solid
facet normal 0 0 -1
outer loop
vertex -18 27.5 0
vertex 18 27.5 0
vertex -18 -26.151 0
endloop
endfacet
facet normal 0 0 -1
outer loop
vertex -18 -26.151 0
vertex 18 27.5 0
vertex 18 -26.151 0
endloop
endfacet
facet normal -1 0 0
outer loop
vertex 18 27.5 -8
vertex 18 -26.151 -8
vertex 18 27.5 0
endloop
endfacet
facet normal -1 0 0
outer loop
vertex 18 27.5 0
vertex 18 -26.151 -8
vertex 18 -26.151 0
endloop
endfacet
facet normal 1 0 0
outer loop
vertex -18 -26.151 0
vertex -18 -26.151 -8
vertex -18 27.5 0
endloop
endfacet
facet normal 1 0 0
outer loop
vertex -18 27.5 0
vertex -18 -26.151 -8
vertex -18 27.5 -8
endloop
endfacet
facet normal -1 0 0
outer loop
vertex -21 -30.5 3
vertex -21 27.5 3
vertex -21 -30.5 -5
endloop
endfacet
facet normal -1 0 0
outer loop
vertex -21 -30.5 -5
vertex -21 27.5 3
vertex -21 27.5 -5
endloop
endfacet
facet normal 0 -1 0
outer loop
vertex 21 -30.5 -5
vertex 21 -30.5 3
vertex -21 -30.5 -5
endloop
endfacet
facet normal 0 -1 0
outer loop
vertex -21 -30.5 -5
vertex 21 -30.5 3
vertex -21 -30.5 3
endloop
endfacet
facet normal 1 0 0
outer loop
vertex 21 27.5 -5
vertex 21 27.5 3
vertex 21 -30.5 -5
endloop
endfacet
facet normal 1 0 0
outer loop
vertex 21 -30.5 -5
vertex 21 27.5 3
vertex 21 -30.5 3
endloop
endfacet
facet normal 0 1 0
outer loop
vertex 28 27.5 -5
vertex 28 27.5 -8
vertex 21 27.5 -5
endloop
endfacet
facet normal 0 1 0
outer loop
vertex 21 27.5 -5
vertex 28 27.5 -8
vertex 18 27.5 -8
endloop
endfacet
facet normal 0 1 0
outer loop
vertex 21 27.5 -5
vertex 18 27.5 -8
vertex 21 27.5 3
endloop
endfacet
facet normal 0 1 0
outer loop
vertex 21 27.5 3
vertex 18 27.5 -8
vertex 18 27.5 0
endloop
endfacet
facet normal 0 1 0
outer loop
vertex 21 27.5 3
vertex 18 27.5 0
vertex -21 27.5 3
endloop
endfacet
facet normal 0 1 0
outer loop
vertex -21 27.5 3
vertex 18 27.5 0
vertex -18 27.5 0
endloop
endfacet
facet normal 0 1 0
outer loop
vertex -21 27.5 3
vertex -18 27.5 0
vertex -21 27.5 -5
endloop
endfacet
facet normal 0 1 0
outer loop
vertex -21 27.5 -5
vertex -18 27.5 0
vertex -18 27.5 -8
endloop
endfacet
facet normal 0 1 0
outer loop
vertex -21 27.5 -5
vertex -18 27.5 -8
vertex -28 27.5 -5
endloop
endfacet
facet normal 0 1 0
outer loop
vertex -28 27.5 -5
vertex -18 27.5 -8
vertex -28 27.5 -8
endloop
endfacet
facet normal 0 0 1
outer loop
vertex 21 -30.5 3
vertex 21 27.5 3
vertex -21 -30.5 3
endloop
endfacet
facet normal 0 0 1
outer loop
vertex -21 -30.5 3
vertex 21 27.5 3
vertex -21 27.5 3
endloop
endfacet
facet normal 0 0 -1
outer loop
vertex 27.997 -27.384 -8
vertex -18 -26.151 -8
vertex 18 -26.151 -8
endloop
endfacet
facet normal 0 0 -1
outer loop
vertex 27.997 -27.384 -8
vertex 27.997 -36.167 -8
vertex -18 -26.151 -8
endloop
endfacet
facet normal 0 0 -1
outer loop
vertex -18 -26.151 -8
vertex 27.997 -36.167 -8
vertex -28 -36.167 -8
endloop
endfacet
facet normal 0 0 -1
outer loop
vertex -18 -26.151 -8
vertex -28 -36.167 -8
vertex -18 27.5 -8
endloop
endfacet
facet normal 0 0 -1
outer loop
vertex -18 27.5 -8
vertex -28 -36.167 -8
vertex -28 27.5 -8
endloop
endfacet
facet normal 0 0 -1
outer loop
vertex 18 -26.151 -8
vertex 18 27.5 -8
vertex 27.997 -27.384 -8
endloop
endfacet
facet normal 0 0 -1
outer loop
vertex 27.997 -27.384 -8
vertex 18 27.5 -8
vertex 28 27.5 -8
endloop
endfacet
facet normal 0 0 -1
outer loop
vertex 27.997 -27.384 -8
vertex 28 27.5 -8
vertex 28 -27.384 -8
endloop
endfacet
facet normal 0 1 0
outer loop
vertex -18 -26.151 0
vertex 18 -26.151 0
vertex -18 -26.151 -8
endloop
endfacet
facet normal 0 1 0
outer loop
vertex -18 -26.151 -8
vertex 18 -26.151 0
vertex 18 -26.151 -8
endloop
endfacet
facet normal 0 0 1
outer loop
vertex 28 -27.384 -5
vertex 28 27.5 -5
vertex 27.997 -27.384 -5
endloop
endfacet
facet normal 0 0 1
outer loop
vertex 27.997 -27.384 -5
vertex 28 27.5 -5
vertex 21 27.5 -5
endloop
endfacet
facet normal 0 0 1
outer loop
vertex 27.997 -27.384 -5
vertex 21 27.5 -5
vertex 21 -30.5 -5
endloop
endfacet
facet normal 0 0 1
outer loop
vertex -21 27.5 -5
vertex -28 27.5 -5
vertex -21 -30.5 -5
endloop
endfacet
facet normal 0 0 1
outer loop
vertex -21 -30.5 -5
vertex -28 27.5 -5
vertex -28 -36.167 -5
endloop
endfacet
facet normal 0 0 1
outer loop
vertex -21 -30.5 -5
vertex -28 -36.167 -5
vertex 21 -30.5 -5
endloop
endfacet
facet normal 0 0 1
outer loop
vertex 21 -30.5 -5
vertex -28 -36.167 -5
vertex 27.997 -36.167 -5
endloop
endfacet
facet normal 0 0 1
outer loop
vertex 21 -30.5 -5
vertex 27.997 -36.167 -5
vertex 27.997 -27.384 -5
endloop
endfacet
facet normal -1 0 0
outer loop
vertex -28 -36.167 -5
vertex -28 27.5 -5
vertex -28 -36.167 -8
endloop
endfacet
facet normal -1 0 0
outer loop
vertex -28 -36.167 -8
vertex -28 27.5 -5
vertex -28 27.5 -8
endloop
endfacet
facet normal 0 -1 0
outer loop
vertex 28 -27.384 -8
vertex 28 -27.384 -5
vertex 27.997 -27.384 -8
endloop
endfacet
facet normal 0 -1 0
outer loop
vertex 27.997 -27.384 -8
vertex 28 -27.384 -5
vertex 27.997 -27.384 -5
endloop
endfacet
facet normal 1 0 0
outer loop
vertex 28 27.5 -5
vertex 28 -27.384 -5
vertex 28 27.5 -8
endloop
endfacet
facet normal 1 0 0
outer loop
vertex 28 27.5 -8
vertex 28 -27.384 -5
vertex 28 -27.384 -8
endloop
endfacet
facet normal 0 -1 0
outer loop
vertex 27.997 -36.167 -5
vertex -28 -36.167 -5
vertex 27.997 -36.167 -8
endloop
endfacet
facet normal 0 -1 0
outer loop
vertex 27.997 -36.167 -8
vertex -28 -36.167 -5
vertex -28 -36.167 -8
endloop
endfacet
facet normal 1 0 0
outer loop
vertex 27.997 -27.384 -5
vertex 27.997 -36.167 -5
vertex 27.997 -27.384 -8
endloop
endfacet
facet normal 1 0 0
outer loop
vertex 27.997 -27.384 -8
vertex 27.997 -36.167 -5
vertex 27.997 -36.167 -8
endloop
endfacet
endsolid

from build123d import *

# Parameters (mm, degrees)
SKETCH1_W           = 42
SKETCH1_H           = 58
BOSS_EXTRUDE1_DEPTH = 3
SKETCH2_W           = 3
SKETCH2_H           = 58
BOSS_EXTRUDE2_DEPTH = 8
SKETCH3_W           = 3
SKETCH3_H           = 58
BOSS_EXTRUDE3_DEPTH = 8
SKETCH4_W           = 36.040635574
SKETCH4_H           = 4.348824295
BOSS_EXTRUDE4_DEPTH = 8
SKETCH5_W           = 10
SKETCH5_H           = 53.666567446
BOSS_EXTRUDE5_DEPTH = 3
SKETCH6_W           = 10
SKETCH6_H           = 54.883518579
BOSS_EXTRUDE6_DEPTH = 3
SKETCH7_W           = 55.997152208
SKETCH7_H           = 10
BOSS_EXTRUDE7_DEPTH = 3


with BuildPart() as part:
    # Sketch1 → Boss-Extrude1 (new body)
    with BuildSketch(Plane.XY):
        with Locations((0, -1.5)):
            Rectangle(SKETCH1_W, SKETCH1_H)
    extrude(amount=BOSS_EXTRUDE1_DEPTH)

    # Sketch2 → Boss-Extrude2 (add)
    with BuildSketch(Plane(origin=(0, 0, 0), x_dir=(-1, 0, 0), z_dir=(0, 0, -1))):
        with Locations((-19.5, -1.5)):
            Rectangle(SKETCH2_W, SKETCH2_H)
    extrude(amount=BOSS_EXTRUDE2_DEPTH)

    # Sketch3 → Boss-Extrude3 (add)
    with BuildSketch(Plane(origin=(0, 0, 0), x_dir=(-1, 0, 0), z_dir=(0, 0, -1))):
        with Locations((19.5, -1.5)):
            Rectangle(SKETCH3_W, SKETCH3_H)
    extrude(amount=BOSS_EXTRUDE3_DEPTH)

    # Sketch4 → Boss-Extrude4 (add)
    with BuildSketch(Plane(origin=(0, 0, 0), x_dir=(-1, 0, 0), z_dir=(0, 0, -1))):
        with Locations((0.020317787, -28.325587852)):
            Rectangle(SKETCH4_W, SKETCH4_H)
    extrude(amount=BOSS_EXTRUDE4_DEPTH)

    # Sketch5 → Boss-Extrude5 (add)
    with BuildSketch(Plane(origin=(0, 0, -8), x_dir=(-1, 0, 0), z_dir=(0, 0, -1))):
        with Locations((23, 0.666716277)):
            Rectangle(SKETCH5_W, SKETCH5_H)
    extrude(amount=-BOSS_EXTRUDE5_DEPTH)

    # Sketch6 → Boss-Extrude6 (add)
    with BuildSketch(Plane(origin=(0, 0, -8), x_dir=(-1, 0, 0), z_dir=(0, 0, -1))):
        with Locations((-23, 0.05824071)):
            Rectangle(SKETCH6_W, SKETCH6_H)
    extrude(amount=-BOSS_EXTRUDE6_DEPTH)

    # Sketch7 → Boss-Extrude7 (add)
    with BuildSketch(Plane(origin=(0, 0, -8), x_dir=(-1, 0, 0), z_dir=(0, 0, -1))):
        with Locations((0.001423896, -31.166567446)):
            Rectangle(SKETCH7_W, SKETCH7_H)
    extrude(amount=-BOSS_EXTRUDE7_DEPTH)


solid = part.part
